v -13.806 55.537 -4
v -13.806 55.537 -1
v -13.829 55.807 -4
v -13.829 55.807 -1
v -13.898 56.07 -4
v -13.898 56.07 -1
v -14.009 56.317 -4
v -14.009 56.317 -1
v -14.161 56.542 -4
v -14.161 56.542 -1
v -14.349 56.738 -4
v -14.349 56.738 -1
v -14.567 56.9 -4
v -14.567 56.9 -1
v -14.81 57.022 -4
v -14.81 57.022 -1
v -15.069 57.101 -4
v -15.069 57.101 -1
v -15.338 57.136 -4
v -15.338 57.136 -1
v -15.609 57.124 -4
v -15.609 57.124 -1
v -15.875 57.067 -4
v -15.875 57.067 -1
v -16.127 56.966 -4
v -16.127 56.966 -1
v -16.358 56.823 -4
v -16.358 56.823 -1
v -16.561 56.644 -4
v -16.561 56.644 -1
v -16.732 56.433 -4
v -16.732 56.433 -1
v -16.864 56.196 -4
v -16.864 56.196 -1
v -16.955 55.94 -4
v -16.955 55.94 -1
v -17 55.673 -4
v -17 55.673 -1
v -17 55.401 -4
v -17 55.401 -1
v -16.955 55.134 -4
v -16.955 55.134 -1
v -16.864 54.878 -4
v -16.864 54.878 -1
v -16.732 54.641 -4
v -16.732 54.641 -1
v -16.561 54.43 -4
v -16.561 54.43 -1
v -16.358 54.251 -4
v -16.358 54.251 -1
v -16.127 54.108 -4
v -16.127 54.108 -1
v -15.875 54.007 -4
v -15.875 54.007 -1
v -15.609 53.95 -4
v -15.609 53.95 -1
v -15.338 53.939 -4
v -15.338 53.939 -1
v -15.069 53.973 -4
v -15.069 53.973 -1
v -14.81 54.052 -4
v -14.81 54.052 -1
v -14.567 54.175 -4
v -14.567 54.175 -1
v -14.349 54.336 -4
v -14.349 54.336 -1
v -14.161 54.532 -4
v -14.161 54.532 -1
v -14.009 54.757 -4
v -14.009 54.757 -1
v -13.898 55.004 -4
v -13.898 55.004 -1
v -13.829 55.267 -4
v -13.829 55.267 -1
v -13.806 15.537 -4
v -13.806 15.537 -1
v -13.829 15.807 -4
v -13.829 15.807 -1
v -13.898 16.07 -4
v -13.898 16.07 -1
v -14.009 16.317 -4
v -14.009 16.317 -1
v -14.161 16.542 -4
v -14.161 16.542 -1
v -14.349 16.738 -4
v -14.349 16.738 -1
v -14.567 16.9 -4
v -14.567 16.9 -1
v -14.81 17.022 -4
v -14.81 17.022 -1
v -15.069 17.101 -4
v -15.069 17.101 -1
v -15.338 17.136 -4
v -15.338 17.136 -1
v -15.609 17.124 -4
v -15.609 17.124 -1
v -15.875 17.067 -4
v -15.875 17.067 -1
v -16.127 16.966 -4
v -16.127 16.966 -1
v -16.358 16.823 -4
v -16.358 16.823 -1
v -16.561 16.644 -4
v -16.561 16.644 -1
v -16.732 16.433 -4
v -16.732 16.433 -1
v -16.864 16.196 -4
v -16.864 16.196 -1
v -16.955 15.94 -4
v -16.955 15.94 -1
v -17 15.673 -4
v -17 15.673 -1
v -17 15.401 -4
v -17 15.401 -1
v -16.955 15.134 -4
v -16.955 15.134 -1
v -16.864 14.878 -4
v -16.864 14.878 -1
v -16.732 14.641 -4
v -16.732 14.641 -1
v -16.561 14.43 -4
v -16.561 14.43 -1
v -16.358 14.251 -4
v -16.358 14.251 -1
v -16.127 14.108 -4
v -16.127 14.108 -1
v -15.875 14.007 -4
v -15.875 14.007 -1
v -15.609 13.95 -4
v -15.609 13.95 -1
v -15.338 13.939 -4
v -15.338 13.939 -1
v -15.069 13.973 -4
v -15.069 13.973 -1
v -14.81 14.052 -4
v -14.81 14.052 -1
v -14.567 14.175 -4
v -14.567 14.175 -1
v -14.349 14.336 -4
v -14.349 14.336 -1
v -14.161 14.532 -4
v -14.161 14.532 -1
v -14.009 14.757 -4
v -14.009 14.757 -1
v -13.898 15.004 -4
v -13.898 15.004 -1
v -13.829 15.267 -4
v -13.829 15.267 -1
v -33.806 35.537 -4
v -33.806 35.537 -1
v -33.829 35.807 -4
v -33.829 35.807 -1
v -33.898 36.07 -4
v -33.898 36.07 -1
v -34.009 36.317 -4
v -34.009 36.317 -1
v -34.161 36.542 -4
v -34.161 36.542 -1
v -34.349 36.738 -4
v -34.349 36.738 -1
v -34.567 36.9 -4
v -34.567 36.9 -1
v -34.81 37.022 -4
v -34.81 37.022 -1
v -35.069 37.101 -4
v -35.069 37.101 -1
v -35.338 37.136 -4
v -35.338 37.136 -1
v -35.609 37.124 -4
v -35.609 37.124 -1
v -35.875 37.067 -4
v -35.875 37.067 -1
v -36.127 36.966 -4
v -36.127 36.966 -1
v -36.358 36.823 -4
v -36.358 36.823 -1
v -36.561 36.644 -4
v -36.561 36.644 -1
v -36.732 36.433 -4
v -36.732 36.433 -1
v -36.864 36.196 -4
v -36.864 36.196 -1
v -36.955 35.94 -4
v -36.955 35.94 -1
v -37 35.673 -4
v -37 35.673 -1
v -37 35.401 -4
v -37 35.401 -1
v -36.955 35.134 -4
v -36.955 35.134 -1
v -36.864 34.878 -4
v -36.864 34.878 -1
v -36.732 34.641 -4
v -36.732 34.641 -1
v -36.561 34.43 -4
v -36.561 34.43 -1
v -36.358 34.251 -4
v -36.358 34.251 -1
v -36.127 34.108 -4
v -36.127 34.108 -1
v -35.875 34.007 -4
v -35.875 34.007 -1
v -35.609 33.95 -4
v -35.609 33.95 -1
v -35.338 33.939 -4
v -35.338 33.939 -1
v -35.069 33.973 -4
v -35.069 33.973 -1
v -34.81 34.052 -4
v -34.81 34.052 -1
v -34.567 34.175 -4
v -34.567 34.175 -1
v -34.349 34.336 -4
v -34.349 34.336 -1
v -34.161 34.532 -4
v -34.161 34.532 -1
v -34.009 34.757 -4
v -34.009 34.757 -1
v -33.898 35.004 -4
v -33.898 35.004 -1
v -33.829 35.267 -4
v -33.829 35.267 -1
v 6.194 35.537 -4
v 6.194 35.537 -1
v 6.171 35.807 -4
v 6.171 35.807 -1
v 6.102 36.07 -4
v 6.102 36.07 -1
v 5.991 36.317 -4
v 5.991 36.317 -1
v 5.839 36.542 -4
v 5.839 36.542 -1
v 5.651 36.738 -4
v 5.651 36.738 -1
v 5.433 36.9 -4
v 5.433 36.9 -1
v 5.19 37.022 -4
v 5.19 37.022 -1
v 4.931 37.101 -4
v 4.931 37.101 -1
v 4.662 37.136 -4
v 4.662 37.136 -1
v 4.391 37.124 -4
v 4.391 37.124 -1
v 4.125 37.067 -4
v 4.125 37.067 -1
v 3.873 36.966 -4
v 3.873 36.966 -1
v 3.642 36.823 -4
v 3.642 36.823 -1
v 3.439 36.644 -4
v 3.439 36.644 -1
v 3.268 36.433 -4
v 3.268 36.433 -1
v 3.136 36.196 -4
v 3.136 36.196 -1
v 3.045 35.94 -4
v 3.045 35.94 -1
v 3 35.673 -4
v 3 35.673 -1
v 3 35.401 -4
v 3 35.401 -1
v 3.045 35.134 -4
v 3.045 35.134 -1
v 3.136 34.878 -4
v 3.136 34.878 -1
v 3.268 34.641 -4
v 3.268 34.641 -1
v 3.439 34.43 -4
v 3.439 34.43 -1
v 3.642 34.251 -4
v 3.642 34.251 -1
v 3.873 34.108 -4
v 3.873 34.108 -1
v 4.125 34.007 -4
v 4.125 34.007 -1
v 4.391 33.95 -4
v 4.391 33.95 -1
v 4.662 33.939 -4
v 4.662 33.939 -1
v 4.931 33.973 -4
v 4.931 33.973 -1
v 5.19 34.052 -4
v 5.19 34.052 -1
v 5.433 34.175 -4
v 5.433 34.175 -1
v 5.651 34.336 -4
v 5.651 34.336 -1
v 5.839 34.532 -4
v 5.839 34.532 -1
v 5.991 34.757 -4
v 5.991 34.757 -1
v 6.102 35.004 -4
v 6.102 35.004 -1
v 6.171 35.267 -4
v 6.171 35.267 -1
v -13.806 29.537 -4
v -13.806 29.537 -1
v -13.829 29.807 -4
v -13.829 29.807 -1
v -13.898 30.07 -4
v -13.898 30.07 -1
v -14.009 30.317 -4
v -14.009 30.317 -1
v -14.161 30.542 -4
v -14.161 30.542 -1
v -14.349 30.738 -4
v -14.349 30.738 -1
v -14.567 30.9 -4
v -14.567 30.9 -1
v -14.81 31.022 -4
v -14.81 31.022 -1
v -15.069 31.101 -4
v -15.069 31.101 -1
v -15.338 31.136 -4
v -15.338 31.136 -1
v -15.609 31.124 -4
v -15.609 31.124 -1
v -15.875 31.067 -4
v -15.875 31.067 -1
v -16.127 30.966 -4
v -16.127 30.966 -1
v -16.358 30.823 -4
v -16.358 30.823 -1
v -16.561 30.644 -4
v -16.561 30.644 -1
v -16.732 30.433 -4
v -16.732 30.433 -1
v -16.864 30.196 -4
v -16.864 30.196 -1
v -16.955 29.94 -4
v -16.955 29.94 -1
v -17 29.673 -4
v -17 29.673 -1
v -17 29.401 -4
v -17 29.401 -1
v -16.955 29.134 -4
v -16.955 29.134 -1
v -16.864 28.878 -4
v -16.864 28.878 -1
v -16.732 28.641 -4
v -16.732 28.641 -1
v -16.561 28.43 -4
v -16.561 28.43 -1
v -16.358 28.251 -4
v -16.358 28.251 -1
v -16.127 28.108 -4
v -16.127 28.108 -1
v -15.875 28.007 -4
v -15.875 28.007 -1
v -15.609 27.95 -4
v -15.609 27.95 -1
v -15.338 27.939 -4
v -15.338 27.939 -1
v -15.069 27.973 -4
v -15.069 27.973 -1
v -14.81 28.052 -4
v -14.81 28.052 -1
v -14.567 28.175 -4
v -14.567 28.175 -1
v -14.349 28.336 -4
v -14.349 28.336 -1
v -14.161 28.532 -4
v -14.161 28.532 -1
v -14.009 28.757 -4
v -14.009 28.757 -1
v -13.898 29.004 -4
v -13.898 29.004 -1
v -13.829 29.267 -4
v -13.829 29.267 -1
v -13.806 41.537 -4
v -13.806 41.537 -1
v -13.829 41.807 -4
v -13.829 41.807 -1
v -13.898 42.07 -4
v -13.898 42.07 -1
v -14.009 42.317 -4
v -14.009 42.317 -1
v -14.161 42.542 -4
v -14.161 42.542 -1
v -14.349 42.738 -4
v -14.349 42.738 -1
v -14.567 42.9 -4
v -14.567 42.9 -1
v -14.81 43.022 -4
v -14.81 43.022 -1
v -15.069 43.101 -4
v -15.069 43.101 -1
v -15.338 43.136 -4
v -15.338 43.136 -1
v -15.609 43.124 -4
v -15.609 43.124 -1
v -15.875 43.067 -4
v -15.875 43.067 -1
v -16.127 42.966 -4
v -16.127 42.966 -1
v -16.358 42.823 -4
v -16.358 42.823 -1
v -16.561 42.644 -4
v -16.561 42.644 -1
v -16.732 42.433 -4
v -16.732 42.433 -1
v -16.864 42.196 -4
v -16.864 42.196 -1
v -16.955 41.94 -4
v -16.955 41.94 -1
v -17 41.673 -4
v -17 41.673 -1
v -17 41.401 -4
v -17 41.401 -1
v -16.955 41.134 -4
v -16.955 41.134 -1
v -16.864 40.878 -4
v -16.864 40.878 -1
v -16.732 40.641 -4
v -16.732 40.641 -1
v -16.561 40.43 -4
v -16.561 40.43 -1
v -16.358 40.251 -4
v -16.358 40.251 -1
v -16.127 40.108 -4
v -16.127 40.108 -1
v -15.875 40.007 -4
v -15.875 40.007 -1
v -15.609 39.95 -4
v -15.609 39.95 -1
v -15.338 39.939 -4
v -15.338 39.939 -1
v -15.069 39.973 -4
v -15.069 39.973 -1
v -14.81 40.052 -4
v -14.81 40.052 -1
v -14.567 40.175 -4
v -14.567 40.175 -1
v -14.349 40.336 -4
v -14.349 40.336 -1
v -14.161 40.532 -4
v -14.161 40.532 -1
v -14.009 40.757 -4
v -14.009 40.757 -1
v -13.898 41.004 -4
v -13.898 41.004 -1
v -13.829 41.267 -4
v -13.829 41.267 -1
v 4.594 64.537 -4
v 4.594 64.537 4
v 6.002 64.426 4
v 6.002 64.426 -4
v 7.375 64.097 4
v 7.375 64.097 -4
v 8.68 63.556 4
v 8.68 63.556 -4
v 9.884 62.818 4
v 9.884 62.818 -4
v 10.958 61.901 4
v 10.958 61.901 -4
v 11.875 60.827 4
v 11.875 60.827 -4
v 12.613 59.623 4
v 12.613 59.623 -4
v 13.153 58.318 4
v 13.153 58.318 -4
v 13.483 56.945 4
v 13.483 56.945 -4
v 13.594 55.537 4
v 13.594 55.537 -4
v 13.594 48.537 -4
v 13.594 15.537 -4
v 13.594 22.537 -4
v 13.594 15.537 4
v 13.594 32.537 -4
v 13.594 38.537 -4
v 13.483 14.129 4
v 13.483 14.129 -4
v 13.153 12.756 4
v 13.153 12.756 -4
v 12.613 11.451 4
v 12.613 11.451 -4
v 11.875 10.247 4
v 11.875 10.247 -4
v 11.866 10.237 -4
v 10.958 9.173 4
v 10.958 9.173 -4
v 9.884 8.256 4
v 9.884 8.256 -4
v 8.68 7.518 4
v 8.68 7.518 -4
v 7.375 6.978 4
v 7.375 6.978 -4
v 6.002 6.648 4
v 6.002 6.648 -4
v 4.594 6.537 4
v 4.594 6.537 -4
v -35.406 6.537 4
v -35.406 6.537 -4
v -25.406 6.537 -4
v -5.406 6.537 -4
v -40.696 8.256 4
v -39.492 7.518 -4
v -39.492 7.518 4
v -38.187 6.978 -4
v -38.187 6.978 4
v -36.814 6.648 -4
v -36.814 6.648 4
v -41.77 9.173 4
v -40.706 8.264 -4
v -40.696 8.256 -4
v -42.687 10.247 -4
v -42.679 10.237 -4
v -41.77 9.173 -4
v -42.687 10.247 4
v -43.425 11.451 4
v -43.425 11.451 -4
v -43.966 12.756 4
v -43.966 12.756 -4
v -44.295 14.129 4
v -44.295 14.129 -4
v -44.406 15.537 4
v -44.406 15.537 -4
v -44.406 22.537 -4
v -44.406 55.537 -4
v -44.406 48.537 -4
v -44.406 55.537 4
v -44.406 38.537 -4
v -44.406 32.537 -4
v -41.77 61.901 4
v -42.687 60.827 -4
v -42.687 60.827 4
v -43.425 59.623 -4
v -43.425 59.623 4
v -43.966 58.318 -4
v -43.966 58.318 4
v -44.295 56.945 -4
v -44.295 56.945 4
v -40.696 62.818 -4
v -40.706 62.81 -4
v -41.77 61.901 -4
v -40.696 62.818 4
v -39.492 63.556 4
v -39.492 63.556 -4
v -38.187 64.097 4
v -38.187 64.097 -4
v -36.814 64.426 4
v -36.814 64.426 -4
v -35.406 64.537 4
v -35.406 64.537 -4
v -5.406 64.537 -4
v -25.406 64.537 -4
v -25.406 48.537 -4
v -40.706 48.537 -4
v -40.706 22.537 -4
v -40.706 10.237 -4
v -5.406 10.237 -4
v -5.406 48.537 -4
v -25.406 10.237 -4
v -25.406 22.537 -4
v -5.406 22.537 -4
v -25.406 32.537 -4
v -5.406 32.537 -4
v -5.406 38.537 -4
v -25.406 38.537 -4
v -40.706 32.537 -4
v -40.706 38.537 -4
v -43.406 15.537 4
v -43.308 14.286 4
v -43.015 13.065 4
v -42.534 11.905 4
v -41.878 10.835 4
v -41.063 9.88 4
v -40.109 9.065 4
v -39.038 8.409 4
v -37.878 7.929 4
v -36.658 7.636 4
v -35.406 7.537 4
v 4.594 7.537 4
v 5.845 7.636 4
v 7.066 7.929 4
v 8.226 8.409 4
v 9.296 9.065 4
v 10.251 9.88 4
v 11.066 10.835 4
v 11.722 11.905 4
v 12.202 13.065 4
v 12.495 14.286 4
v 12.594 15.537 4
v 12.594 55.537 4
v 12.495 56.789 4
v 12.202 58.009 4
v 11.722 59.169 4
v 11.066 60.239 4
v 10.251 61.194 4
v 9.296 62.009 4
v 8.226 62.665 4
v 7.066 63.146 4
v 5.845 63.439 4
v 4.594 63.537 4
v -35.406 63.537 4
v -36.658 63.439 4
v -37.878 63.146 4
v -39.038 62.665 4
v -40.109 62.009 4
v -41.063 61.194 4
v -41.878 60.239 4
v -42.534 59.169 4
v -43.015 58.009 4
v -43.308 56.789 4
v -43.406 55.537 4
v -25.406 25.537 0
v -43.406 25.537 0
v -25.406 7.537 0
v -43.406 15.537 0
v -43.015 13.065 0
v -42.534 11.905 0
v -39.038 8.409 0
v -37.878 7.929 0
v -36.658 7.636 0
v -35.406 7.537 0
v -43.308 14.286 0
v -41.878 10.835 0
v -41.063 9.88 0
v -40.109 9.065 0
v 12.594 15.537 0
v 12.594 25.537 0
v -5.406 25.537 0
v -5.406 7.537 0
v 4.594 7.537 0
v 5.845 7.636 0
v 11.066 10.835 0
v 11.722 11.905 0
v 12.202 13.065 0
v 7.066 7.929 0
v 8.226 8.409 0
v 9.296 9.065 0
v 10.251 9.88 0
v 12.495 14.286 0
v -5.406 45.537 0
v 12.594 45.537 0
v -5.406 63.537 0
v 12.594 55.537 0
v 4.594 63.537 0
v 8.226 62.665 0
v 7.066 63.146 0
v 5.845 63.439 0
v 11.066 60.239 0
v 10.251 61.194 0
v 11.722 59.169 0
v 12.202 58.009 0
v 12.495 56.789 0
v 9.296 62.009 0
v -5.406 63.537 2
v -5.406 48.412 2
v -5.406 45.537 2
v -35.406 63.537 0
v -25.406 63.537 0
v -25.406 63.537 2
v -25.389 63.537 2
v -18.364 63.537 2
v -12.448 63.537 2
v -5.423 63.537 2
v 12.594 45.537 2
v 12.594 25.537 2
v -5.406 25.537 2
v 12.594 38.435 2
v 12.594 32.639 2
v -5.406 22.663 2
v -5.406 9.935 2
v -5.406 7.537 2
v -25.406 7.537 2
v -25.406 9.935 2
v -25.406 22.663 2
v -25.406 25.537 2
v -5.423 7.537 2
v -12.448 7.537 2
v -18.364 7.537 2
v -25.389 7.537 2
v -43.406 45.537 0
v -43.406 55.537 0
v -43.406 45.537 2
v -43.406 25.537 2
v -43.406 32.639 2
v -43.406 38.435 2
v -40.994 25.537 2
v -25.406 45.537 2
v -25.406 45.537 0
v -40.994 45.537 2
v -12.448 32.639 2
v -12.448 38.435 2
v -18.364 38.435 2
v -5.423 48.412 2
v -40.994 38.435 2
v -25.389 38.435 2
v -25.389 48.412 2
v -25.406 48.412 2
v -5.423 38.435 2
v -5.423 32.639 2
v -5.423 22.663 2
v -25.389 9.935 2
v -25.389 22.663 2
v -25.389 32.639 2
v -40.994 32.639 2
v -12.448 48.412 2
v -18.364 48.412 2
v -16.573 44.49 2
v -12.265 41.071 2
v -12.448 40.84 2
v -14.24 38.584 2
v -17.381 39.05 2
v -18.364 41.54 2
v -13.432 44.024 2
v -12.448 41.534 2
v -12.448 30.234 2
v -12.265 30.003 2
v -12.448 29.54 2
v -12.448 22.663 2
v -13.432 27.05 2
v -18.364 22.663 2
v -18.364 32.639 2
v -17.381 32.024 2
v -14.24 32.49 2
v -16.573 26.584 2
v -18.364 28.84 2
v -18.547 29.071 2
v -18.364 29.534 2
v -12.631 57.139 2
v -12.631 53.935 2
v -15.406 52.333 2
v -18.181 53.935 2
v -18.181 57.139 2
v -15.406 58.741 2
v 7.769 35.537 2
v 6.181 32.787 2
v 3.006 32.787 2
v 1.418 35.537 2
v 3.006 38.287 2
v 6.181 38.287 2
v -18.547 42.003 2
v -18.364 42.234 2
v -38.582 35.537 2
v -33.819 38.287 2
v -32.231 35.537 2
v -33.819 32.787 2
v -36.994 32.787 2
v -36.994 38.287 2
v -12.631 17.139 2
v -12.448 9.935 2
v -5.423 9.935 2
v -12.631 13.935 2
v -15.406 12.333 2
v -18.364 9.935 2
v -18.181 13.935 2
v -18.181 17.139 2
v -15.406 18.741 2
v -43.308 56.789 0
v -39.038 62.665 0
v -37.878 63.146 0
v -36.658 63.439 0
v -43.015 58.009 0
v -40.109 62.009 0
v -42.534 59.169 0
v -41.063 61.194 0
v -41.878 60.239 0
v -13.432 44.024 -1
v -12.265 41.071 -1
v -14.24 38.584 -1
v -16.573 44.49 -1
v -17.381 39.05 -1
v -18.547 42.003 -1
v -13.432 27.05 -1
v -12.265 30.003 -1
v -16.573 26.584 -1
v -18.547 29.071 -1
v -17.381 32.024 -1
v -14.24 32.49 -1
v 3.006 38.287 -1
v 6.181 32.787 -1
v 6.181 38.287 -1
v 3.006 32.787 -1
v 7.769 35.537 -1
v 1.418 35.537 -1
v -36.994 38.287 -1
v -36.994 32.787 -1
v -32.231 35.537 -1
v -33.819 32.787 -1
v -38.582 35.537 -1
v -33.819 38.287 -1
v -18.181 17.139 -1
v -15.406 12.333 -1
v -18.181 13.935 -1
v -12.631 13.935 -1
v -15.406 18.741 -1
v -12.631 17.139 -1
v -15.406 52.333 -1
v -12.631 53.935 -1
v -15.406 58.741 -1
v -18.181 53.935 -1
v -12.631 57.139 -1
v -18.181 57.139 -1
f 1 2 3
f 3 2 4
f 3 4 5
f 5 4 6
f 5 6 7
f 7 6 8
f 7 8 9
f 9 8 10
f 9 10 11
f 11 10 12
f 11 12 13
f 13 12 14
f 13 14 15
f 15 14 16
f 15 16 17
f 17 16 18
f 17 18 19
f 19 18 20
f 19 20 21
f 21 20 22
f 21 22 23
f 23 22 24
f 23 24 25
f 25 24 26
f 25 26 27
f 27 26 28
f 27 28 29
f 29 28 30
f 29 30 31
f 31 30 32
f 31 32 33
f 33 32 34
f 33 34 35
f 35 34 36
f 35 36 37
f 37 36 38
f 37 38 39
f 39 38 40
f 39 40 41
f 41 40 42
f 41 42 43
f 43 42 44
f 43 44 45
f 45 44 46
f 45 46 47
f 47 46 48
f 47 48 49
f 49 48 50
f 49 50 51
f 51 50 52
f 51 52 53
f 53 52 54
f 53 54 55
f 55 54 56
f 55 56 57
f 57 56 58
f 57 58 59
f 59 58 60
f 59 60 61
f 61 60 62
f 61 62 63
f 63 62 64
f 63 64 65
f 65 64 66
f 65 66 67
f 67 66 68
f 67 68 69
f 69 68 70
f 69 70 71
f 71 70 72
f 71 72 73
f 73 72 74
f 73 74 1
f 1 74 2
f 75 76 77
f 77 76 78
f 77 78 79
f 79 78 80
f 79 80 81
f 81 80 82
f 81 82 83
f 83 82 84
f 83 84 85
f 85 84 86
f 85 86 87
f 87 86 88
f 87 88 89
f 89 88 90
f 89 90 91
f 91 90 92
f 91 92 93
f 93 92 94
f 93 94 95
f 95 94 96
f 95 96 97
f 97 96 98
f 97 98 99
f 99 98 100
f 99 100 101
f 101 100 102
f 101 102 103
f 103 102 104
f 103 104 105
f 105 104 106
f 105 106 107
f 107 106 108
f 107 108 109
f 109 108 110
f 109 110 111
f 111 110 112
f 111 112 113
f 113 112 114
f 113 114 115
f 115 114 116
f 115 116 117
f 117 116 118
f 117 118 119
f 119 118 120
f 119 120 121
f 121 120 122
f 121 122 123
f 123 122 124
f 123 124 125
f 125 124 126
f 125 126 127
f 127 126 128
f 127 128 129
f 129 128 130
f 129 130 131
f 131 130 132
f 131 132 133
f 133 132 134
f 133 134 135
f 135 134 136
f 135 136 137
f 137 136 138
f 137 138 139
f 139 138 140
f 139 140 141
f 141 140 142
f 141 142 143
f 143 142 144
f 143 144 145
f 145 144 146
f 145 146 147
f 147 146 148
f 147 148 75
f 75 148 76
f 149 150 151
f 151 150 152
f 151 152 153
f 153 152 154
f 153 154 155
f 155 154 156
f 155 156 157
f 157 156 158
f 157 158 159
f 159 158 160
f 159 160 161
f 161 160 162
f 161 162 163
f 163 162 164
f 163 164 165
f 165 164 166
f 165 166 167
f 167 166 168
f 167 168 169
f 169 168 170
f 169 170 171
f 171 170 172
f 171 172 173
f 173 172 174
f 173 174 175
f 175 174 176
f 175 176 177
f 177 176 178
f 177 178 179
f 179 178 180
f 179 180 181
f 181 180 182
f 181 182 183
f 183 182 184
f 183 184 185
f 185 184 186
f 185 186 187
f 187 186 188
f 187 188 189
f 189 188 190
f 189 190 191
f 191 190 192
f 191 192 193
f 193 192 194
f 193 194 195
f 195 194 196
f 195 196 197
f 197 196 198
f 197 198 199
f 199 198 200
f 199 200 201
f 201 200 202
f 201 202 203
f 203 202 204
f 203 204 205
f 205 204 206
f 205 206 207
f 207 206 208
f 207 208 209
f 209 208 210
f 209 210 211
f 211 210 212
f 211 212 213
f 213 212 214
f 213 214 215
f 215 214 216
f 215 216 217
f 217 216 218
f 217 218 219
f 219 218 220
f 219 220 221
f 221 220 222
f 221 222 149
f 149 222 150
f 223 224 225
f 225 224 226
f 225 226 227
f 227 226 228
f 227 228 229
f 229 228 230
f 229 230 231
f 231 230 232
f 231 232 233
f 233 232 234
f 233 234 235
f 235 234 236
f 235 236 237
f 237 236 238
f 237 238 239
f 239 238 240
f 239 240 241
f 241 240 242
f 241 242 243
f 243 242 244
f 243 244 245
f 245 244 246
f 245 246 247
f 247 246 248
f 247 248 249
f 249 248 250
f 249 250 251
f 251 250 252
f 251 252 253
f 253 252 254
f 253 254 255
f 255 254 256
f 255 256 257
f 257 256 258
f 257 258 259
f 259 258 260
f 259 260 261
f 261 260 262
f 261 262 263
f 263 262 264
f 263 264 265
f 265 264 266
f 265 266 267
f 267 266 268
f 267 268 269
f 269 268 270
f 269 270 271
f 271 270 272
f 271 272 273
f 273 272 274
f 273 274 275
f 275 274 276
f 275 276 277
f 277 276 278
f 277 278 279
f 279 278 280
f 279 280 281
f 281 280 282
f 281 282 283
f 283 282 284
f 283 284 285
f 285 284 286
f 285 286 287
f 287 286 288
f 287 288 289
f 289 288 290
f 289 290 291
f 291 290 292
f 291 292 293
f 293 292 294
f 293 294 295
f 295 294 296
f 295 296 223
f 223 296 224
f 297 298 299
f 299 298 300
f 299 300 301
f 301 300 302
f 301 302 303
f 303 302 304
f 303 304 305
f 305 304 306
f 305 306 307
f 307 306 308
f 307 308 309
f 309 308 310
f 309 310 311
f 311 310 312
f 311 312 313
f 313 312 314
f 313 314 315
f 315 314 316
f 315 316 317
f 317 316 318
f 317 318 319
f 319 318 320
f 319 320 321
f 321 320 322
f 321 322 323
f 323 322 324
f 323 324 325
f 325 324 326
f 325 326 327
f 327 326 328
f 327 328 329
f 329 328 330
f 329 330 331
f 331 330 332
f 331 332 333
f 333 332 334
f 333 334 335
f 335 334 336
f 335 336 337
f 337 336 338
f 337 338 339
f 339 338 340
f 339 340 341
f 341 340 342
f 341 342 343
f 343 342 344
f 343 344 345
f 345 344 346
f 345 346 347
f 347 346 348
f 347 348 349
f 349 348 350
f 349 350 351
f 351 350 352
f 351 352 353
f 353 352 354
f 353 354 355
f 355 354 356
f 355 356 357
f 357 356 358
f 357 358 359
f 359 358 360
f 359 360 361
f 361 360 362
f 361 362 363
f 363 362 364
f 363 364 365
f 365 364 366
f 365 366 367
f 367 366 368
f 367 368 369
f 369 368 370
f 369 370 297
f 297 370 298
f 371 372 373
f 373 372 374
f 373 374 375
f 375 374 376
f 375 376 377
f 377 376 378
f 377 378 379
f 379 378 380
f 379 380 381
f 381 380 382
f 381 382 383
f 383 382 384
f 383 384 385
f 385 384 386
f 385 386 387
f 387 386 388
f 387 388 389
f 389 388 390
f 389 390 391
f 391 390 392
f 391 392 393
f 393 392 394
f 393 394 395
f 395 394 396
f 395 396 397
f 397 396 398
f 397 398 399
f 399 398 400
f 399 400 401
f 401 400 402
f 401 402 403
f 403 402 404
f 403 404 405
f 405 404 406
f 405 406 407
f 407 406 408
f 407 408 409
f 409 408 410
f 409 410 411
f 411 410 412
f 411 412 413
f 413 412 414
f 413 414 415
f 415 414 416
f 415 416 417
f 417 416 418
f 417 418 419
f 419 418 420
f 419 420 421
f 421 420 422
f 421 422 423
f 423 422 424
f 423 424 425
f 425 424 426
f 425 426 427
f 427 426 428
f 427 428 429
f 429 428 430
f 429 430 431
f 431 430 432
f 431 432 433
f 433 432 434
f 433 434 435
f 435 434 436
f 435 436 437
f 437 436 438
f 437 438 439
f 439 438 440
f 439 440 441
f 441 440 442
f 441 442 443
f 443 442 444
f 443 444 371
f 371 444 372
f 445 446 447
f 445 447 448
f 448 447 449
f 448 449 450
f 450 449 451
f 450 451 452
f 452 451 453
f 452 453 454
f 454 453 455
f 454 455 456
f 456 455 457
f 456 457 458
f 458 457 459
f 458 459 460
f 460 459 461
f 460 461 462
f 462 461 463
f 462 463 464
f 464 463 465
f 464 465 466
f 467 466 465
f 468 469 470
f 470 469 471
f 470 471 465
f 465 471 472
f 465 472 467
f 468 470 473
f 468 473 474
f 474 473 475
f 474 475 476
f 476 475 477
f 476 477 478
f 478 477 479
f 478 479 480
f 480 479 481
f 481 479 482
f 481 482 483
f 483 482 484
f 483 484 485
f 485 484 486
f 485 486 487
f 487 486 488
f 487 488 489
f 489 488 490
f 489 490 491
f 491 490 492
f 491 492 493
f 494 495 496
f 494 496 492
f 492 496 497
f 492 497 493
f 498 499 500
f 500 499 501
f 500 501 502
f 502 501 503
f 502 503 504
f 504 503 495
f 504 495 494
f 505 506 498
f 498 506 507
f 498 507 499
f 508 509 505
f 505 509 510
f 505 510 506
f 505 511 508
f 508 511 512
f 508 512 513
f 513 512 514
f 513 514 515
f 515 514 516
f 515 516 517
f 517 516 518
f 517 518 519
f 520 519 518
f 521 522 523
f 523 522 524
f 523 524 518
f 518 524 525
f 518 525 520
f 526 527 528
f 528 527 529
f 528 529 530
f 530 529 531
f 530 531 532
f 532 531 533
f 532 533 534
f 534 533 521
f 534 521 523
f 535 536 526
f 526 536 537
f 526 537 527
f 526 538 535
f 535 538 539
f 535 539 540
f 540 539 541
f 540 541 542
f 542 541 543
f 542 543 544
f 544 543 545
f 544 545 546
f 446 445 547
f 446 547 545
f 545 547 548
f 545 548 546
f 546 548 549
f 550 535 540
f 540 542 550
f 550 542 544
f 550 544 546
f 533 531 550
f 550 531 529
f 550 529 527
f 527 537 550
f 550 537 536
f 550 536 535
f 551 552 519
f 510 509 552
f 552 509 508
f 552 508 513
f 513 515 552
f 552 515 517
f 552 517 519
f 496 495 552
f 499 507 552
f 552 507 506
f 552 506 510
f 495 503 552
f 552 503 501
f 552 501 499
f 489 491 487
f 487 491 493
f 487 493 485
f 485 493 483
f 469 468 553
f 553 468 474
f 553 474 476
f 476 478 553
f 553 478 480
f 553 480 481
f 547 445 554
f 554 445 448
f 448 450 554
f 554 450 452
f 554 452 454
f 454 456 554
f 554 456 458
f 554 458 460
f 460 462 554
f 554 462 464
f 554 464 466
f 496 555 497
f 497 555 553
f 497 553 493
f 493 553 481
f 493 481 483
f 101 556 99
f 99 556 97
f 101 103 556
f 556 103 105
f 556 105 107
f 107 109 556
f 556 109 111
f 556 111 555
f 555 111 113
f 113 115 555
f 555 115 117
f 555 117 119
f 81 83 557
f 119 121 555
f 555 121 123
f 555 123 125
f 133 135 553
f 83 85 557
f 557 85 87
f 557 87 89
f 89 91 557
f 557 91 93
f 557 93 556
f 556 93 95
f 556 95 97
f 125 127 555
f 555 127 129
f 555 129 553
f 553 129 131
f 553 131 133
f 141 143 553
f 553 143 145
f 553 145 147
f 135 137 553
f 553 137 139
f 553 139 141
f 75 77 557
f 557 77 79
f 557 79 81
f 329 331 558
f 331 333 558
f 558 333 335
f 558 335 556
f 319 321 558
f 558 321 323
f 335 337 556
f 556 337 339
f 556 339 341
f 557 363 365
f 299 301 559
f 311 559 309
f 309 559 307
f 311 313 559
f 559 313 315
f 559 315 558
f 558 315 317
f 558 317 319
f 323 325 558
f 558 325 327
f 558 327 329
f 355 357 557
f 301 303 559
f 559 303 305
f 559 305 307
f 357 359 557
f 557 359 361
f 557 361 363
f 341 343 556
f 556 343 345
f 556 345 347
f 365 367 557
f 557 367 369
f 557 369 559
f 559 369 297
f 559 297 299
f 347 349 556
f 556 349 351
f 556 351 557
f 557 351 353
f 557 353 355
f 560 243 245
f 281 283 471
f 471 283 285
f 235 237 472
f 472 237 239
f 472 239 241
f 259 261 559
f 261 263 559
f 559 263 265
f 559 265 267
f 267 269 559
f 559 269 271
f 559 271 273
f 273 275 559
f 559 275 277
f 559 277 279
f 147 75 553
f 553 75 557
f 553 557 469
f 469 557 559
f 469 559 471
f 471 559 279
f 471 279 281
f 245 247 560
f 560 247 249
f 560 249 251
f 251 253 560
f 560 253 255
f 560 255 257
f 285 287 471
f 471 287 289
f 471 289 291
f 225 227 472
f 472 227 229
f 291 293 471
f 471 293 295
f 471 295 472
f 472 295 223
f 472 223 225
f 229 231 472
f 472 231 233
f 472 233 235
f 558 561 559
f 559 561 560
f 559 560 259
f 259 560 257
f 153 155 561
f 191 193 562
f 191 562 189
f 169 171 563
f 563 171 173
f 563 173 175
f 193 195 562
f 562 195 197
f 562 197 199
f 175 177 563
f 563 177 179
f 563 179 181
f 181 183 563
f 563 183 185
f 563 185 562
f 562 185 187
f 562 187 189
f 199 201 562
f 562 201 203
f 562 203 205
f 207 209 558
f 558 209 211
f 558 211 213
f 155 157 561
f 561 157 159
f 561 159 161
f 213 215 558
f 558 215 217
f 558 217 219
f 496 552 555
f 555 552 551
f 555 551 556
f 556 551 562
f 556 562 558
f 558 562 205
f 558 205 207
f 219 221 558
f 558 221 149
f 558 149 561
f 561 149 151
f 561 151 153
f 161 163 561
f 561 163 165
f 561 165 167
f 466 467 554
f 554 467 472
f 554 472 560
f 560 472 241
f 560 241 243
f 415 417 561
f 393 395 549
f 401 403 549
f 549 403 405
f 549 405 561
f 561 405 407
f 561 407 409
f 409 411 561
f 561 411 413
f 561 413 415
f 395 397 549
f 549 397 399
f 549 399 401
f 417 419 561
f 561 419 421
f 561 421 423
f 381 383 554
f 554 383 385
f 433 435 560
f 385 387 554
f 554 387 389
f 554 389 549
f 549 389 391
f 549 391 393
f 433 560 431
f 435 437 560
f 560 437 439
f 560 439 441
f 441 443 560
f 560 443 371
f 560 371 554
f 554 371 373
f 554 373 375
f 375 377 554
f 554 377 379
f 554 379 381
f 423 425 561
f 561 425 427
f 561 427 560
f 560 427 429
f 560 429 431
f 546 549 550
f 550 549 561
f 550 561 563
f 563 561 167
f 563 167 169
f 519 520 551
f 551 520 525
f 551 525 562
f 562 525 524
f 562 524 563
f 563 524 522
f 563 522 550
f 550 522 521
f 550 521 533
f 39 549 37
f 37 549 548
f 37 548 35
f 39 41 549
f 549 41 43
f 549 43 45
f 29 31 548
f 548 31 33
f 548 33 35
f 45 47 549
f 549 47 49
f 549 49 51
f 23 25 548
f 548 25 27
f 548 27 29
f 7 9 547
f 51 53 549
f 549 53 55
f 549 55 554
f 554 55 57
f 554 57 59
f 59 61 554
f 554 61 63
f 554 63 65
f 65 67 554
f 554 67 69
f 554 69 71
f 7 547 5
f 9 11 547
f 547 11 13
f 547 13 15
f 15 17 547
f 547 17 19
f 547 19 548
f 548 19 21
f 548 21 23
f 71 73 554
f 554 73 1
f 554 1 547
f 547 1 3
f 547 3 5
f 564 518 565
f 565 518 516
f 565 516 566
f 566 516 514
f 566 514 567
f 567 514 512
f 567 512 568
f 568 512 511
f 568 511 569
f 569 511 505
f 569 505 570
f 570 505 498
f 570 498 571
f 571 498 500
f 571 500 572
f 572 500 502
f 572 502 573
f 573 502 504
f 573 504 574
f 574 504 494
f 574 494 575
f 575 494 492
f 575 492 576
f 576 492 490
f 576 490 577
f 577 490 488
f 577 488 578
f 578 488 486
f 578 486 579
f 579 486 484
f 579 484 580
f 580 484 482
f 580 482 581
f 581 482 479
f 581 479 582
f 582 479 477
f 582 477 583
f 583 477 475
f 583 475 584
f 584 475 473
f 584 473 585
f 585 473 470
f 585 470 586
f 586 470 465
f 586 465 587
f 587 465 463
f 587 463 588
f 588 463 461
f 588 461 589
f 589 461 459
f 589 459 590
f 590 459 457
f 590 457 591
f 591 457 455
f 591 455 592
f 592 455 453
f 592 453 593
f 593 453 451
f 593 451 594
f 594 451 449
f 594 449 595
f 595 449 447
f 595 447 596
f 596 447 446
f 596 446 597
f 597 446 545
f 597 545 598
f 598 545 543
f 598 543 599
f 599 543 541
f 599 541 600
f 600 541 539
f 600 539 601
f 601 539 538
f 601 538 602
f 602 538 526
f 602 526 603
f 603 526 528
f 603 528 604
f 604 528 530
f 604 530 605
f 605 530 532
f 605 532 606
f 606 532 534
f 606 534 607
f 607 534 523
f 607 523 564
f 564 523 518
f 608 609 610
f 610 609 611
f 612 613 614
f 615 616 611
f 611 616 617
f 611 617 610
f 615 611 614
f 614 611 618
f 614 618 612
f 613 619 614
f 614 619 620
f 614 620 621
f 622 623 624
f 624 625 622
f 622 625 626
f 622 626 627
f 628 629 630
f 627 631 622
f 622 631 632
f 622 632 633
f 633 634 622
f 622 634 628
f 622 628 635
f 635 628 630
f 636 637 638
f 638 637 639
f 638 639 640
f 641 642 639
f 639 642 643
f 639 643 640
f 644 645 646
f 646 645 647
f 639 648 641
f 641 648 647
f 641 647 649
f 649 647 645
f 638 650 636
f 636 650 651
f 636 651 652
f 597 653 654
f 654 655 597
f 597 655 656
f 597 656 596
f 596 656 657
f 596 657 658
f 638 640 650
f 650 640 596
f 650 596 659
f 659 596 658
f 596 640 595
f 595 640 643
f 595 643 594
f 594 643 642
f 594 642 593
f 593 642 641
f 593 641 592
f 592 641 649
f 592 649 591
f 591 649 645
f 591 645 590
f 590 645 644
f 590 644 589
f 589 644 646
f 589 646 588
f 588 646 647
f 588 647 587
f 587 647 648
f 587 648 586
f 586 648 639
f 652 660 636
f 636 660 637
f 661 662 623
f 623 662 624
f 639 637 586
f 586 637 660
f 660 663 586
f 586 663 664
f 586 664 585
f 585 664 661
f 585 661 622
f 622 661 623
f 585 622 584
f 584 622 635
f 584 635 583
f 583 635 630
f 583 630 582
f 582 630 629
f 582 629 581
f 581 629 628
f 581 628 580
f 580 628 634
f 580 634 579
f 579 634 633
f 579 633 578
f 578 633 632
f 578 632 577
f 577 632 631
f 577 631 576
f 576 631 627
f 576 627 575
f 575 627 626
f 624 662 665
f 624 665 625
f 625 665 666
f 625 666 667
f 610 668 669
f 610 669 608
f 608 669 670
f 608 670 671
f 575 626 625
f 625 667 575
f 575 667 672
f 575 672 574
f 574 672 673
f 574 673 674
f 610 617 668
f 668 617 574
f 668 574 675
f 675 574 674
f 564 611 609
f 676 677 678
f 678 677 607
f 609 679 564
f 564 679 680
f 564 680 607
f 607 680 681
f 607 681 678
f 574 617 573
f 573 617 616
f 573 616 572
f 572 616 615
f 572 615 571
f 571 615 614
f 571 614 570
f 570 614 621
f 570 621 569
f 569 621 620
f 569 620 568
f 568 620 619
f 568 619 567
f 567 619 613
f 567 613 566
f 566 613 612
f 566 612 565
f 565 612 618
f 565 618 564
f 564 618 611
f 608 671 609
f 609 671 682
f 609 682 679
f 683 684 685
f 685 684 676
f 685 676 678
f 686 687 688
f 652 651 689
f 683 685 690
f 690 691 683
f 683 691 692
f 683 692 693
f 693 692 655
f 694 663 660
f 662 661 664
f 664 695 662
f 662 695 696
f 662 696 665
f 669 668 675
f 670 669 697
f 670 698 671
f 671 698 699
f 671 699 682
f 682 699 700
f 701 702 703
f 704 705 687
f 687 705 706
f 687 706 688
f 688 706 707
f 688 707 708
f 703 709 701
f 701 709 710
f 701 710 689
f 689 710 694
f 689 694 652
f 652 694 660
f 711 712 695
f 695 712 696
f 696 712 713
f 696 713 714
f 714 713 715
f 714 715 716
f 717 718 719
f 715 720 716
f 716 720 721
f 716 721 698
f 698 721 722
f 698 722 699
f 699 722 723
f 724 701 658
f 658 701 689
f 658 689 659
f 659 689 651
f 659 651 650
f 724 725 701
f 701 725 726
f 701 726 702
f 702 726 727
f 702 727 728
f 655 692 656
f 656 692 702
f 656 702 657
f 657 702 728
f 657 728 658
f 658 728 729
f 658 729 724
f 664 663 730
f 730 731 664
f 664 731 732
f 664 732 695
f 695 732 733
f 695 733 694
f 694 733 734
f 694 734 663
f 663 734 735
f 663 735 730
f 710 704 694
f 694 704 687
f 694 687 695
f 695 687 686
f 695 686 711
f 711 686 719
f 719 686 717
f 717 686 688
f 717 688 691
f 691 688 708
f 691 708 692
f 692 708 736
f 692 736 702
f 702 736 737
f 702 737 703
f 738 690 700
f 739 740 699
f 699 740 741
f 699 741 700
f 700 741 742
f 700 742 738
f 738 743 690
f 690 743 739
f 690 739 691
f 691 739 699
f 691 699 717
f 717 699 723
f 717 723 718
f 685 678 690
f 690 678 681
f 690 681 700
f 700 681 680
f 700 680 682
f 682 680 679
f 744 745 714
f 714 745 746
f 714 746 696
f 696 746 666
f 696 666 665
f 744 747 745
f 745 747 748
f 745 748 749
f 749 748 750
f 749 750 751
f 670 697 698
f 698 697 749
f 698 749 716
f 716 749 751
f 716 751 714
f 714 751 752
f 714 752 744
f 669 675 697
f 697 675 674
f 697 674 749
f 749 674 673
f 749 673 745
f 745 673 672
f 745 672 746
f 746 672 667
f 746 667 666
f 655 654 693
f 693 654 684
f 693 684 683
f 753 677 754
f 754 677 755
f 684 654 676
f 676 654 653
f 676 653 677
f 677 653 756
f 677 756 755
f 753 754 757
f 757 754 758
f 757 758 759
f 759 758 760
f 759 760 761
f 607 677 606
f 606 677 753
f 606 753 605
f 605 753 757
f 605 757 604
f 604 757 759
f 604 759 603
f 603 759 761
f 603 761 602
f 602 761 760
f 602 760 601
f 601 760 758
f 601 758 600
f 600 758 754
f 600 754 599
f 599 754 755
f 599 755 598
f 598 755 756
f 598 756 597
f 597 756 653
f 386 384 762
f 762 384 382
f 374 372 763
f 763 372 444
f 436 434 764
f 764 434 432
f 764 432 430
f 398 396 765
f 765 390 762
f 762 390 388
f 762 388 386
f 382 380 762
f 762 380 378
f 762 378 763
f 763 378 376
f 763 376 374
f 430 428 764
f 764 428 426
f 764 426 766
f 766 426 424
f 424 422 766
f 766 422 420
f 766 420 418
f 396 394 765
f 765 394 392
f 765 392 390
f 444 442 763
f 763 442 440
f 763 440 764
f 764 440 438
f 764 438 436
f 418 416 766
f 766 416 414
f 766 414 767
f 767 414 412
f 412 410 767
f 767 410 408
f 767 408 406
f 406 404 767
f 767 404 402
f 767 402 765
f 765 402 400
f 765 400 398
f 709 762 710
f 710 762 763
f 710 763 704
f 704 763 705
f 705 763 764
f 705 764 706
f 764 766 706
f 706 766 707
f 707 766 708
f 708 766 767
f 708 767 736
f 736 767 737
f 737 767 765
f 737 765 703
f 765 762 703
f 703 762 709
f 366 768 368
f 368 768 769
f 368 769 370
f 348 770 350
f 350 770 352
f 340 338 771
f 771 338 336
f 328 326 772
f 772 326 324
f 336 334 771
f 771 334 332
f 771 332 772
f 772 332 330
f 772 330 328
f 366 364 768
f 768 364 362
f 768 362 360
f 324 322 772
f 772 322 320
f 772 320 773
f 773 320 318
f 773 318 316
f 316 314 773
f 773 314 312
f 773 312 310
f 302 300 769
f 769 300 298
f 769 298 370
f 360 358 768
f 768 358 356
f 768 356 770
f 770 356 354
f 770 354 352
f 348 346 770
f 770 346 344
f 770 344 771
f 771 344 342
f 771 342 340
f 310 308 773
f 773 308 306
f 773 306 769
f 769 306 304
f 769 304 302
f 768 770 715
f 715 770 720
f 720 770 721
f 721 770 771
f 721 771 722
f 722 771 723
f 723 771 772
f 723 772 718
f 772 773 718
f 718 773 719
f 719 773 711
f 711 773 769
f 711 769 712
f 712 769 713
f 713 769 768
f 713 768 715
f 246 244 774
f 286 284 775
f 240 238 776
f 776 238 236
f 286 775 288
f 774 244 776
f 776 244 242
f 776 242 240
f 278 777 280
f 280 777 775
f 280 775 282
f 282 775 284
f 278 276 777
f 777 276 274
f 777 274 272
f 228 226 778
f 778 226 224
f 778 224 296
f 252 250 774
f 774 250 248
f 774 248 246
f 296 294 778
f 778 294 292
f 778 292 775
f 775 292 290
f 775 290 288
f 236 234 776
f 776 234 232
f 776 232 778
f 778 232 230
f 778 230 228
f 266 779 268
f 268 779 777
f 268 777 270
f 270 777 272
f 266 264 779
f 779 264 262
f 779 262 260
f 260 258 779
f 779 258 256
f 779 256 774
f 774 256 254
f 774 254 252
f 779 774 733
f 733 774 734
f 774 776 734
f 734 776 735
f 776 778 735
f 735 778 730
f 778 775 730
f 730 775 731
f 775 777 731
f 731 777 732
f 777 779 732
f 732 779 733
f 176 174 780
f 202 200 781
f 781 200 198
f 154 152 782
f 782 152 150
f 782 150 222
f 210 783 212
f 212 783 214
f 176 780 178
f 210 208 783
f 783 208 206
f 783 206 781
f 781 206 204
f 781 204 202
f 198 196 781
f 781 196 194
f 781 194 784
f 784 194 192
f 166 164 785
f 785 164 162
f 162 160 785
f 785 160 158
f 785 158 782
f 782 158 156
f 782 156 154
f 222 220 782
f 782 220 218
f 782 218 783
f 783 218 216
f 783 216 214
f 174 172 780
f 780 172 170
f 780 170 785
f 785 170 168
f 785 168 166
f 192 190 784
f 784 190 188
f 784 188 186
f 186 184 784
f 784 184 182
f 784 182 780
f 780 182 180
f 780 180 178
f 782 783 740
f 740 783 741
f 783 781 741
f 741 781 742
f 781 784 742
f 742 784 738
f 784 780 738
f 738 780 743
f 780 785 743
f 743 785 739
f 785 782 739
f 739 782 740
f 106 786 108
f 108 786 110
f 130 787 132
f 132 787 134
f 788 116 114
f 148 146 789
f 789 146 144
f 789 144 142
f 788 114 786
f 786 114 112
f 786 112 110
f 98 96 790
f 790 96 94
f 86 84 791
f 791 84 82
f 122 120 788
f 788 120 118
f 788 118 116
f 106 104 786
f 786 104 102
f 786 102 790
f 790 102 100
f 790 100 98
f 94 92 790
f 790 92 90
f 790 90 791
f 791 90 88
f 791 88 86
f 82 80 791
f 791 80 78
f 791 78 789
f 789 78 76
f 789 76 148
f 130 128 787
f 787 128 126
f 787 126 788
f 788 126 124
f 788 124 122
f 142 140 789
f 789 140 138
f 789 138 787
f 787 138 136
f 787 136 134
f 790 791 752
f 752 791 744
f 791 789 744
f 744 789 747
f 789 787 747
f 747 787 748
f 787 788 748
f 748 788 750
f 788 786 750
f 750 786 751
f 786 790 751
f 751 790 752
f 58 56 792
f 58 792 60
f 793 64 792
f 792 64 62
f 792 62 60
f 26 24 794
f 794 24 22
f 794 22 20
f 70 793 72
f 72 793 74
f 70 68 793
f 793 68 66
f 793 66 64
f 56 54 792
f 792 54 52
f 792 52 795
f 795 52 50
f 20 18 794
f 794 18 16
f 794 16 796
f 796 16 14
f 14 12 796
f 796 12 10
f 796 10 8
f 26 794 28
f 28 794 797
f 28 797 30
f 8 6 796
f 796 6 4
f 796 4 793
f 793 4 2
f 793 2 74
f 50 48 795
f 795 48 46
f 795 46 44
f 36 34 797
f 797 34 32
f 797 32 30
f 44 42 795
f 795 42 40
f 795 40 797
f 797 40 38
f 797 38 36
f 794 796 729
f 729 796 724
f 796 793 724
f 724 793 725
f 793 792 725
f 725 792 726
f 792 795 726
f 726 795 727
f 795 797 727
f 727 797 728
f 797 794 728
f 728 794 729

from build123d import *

# Parameters (mm, degrees)
EXTRUDE_1_DEPTH     = 4
EXTRUDE_START       = 2
EXTRUDE_2_DEPTH     = 2
EXTRUDE_3_DEPTH     = 2
SKETCH_4_R          = 1.6
CUT_EXTRUDE_1_DEPTH = 10
CUT_EXTRUDE_2_DEPTH = 3
SKETCH_7_R          = 1.6
CUT_EXTRUDE_3_DEPTH = 10
CUT_EXTRUDE_4_DEPTH = 3


with BuildPart() as part:
    # 草图1 → 凸台-拉伸1 (new body)
    with BuildSketch(Plane.XY):
        with BuildLine():
            Line((-35.40625, 64.537081934), (4.59375, 64.537081934))
            ThreePointArc((4.59375, 64.537081934), (10.957711031, 61.901042965), (13.59375, 55.537081934))
            Line((13.59375, 55.537081934), (13.59375, 15.537081934))
            ThreePointArc((13.59375, 15.537081934), (10.957711031, 9.173120903), (4.59375, 6.537081934))
            Line((4.59375, 6.537081934), (-35.40625, 6.537081934))
            ThreePointArc((-35.40625, 6.537081934), (-41.770211031, 9.173120903), (-44.40625, 15.537081934))
            Line((-44.40625, 15.537081934), (-44.40625, 55.537081934))
            ThreePointArc((-44.40625, 55.537081934), (-41.770211031, 61.901042965), (-35.40625, 64.537081934))
        make_face()
    extrude(amount=-EXTRUDE_1_DEPTH)

    # 草图2 → 凸台-拉伸2 (add)
    with BuildSketch(Plane.XY.offset(EXTRUDE_START)):
        with BuildLine():
            Line((13.59375, 15.537081934), (13.59375, 55.537081934))
            ThreePointArc((13.59375, 55.537081934), (10.957711031, 61.901042965), (4.59375, 64.537081934))
            Line((4.59375, 64.537081934), (-35.40625, 64.537081934))
            ThreePointArc((-35.40625, 64.537081934), (-41.770211031, 61.901042965), (-44.40625, 55.537081934))
            Line((-44.40625, 55.537081934), (-44.40625, 15.537081934))
            ThreePointArc((-44.40625, 15.537081934), (-41.770211031, 9.173120903), (-35.40625, 6.537081934))
            Line((-35.40625, 6.537081934), (4.59375, 6.537081934))
            ThreePointArc((4.59375, 6.537081934), (10.957711031, 9.173120903), (13.59375, 15.537081934))
        make_face()
        with BuildLine():
            Line((-35.40625, 63.537081934), (-25.40625, 63.537081934))
            Line((-25.40625, 63.537081934), (-25.40625, 45.537081934))
            Line((-25.40625, 45.537081934), (-43.40625, 45.537081934))
            Line((-43.40625, 45.537081934), (-43.40625, 55.537081934))
            ThreePointArc((-43.40625, 55.537081934), (-41.063104249, 61.193936184), (-35.40625, 63.537081934))
        make_face(mode=Mode.SUBTRACT)
        with BuildLine():
            Line((12.59375, 55.537081934), (12.59375, 45.537081934))
            Line((12.59375, 45.537081934), (-5.40625, 45.537081934))
            Line((-5.40625, 45.537081934), (-5.40625, 63.537081934))
            Line((-5.40625, 63.537081934), (4.59375, 63.537081934))
            ThreePointArc((4.59375, 63.537081934), (10.250604249, 61.193936184), (12.59375, 55.537081934))
        make_face(mode=Mode.SUBTRACT)
        with BuildLine():
            Line((-35.40625, 7.537081934), (-25.40625, 7.537081934))
            Line((-25.40625, 7.537081934), (-25.40625, 25.537081934))
            Line((-25.40625, 25.537081934), (-43.40625, 25.537081934))
            Line((-43.40625, 25.537081934), (-43.40625, 15.537081934))
            ThreePointArc((-43.40625, 15.537081934), (-41.063104249, 9.880227685), (-35.40625, 7.537081934))
        make_face(mode=Mode.SUBTRACT)
        with BuildLine():
            Line((-5.40625, 25.537081934), (12.59375, 25.537081934))
            Line((12.59375, 25.537081934), (12.59375, 15.537081934))
            ThreePointArc((12.59375, 15.537081934), (10.250604249, 9.880227685), (4.59375, 7.537081934))
            Line((4.59375, 7.537081934), (-5.40625, 7.537081934))
            Line((-5.40625, 7.537081934), (-5.40625, 25.537081934))
        make_face(mode=Mode.SUBTRACT)
    extrude(amount=-EXTRUDE_2_DEPTH)

    # 草图3 → 凸台-拉伸3 (add)
    with BuildSketch(Plane.XY.offset(2).offset(EXTRUDE_START)):
        with BuildLine():
            Line((13.59375, 15.537081934), (13.59375, 55.537081934))
            ThreePointArc((13.59375, 55.537081934), (10.957711031, 61.901042965), (4.59375, 64.537081934))
            Line((4.59375, 64.537081934), (-35.40625, 64.537081934))
            ThreePointArc((-35.40625, 64.537081934), (-41.770211031, 61.901042965), (-44.40625, 55.537081934))
            Line((-44.40625, 55.537081934), (-44.40625, 15.537081934))
            ThreePointArc((-44.40625, 15.537081934), (-41.770211031, 9.173120903), (-35.40625, 6.537081934))
            Line((-35.40625, 6.537081934), (4.59375, 6.537081934))
            ThreePointArc((4.59375, 6.537081934), (10.957711031, 9.173120903), (13.59375, 15.537081934))
        make_face()
        with BuildLine():
            Line((-43.40625, 55.537081934), (-43.40625, 45.537081934))
            Line((-43.40625, 45.537081934), (-43.40625, 25.537081934))
            Line((-43.40625, 25.537081934), (-43.40625, 15.537081934))
            ThreePointArc((-43.40625, 15.537081934), (-41.063104249, 9.880227685), (-35.40625, 7.537081934))
            Line((-35.40625, 7.537081934), (-25.40625, 7.537081934))
            Line((-25.40625, 7.537081934), (-5.40625, 7.537081934))
            Line((-5.40625, 7.537081934), (4.59375, 7.537081934))
            ThreePointArc((4.59375, 7.537081934), (10.250604249, 9.880227685), (12.59375, 15.537081934))
            Line((12.59375, 15.537081934), (12.59375, 25.537081934))
            Line((12.59375, 25.537081934), (12.59375, 45.537081934))
            Line((12.59375, 45.537081934), (12.59375, 55.537081934))
            ThreePointArc((12.59375, 55.537081934), (10.250604249, 61.193936184), (4.59375, 63.537081934))
            Line((4.59375, 63.537081934), (-5.40625, 63.537081934))
            Line((-5.40625, 63.537081934), (-25.40625, 63.537081934))
            Line((-25.40625, 63.537081934), (-35.40625, 63.537081934))
            ThreePointArc((-35.40625, 63.537081934), (-41.063104249, 61.193936184), (-43.40625, 55.537081934))
        make_face(mode=Mode.SUBTRACT)
    extrude(amount=-EXTRUDE_3_DEPTH)

    # 草图4 → 切除-拉伸1 (cut)
    with BuildSketch(Plane.XY.offset(2)):
        with Locations((-15.40625, 41.537081934)):
            Circle(SKETCH_4_R)
        with Locations((-15.40625, 29.537081934)):
            Circle(SKETCH_4_R)
        with Locations((4.59375, 35.537081934)):
            Circle(SKETCH_4_R)
        with Locations((-35.40625, 35.537081934)):
            Circle(SKETCH_4_R)
    extrude(amount=-CUT_EXTRUDE_1_DEPTH, mode=Mode.SUBTRACT)

    # 草图5 → 切除-拉伸2 (cut)
    with BuildSketch(Plane.XY.offset(2)):
        Polygon((-13.431907117, 44.024108978), (-16.572907158, 44.490426548), (-18.547250041, 42.003399505), (-17.380592883, 39.050054891), (-14.239592842, 38.58373732), (-12.265249959, 41.070764364), align=None)
        Polygon((1.418323519, 35.537081934), (3.00603676, 32.787081934), (6.18146324, 32.787081934), (7.769176481, 35.537081934), (6.18146324, 38.287081934), (3.00603676, 38.287081934), align=None)
        Polygon((-13.431907117, 27.050054891), (-12.265249959, 30.003399505), (-14.239592842, 32.490426548), (-17.380592883, 32.024108978), (-18.547250041, 29.070764364), (-16.572907158, 26.58373732), align=None)
        Polygon((-32.230823519, 35.537081934), (-33.81853676, 38.287081934), (-36.99396324, 38.287081934), (-38.581676481, 35.537081934), (-36.99396324, 32.787081934), (-33.81853676, 32.787081934), align=None)
    extrude(amount=-CUT_EXTRUDE_2_DEPTH, mode=Mode.SUBTRACT)

    # 草图7 → 切除-拉伸3 (cut)
    with BuildSketch(Plane.XY.offset(2)):
        with Locations((-15.40625, 15.537081934)):
            Circle(SKETCH_7_R)
        with Locations((-15.40625, 55.537081934)):
            Circle(SKETCH_7_R)
    extrude(amount=-CUT_EXTRUDE_3_DEPTH, mode=Mode.SUBTRACT)

    # 草图8 → 切除-拉伸4 (cut)
    with BuildSketch(Plane.XY.offset(2)):
        Polygon((-15.40625, 18.741375928), (-18.18125, 17.139228931), (-18.18125, 13.934934937), (-15.40625, 12.33278794), (-12.63125, 13.934934937), (-12.63125, 17.139228931), align=None)
        Polygon((-15.40625, 58.741375928), (-18.18125, 57.139228931), (-18.18125, 53.934934937), (-15.40625, 52.33278794), (-12.63125, 53.934934937), (-12.63125, 57.139228931), align=None)
    extrude(amount=-CUT_EXTRUDE_4_DEPTH, mode=Mode.SUBTRACT)


solid = part.part
